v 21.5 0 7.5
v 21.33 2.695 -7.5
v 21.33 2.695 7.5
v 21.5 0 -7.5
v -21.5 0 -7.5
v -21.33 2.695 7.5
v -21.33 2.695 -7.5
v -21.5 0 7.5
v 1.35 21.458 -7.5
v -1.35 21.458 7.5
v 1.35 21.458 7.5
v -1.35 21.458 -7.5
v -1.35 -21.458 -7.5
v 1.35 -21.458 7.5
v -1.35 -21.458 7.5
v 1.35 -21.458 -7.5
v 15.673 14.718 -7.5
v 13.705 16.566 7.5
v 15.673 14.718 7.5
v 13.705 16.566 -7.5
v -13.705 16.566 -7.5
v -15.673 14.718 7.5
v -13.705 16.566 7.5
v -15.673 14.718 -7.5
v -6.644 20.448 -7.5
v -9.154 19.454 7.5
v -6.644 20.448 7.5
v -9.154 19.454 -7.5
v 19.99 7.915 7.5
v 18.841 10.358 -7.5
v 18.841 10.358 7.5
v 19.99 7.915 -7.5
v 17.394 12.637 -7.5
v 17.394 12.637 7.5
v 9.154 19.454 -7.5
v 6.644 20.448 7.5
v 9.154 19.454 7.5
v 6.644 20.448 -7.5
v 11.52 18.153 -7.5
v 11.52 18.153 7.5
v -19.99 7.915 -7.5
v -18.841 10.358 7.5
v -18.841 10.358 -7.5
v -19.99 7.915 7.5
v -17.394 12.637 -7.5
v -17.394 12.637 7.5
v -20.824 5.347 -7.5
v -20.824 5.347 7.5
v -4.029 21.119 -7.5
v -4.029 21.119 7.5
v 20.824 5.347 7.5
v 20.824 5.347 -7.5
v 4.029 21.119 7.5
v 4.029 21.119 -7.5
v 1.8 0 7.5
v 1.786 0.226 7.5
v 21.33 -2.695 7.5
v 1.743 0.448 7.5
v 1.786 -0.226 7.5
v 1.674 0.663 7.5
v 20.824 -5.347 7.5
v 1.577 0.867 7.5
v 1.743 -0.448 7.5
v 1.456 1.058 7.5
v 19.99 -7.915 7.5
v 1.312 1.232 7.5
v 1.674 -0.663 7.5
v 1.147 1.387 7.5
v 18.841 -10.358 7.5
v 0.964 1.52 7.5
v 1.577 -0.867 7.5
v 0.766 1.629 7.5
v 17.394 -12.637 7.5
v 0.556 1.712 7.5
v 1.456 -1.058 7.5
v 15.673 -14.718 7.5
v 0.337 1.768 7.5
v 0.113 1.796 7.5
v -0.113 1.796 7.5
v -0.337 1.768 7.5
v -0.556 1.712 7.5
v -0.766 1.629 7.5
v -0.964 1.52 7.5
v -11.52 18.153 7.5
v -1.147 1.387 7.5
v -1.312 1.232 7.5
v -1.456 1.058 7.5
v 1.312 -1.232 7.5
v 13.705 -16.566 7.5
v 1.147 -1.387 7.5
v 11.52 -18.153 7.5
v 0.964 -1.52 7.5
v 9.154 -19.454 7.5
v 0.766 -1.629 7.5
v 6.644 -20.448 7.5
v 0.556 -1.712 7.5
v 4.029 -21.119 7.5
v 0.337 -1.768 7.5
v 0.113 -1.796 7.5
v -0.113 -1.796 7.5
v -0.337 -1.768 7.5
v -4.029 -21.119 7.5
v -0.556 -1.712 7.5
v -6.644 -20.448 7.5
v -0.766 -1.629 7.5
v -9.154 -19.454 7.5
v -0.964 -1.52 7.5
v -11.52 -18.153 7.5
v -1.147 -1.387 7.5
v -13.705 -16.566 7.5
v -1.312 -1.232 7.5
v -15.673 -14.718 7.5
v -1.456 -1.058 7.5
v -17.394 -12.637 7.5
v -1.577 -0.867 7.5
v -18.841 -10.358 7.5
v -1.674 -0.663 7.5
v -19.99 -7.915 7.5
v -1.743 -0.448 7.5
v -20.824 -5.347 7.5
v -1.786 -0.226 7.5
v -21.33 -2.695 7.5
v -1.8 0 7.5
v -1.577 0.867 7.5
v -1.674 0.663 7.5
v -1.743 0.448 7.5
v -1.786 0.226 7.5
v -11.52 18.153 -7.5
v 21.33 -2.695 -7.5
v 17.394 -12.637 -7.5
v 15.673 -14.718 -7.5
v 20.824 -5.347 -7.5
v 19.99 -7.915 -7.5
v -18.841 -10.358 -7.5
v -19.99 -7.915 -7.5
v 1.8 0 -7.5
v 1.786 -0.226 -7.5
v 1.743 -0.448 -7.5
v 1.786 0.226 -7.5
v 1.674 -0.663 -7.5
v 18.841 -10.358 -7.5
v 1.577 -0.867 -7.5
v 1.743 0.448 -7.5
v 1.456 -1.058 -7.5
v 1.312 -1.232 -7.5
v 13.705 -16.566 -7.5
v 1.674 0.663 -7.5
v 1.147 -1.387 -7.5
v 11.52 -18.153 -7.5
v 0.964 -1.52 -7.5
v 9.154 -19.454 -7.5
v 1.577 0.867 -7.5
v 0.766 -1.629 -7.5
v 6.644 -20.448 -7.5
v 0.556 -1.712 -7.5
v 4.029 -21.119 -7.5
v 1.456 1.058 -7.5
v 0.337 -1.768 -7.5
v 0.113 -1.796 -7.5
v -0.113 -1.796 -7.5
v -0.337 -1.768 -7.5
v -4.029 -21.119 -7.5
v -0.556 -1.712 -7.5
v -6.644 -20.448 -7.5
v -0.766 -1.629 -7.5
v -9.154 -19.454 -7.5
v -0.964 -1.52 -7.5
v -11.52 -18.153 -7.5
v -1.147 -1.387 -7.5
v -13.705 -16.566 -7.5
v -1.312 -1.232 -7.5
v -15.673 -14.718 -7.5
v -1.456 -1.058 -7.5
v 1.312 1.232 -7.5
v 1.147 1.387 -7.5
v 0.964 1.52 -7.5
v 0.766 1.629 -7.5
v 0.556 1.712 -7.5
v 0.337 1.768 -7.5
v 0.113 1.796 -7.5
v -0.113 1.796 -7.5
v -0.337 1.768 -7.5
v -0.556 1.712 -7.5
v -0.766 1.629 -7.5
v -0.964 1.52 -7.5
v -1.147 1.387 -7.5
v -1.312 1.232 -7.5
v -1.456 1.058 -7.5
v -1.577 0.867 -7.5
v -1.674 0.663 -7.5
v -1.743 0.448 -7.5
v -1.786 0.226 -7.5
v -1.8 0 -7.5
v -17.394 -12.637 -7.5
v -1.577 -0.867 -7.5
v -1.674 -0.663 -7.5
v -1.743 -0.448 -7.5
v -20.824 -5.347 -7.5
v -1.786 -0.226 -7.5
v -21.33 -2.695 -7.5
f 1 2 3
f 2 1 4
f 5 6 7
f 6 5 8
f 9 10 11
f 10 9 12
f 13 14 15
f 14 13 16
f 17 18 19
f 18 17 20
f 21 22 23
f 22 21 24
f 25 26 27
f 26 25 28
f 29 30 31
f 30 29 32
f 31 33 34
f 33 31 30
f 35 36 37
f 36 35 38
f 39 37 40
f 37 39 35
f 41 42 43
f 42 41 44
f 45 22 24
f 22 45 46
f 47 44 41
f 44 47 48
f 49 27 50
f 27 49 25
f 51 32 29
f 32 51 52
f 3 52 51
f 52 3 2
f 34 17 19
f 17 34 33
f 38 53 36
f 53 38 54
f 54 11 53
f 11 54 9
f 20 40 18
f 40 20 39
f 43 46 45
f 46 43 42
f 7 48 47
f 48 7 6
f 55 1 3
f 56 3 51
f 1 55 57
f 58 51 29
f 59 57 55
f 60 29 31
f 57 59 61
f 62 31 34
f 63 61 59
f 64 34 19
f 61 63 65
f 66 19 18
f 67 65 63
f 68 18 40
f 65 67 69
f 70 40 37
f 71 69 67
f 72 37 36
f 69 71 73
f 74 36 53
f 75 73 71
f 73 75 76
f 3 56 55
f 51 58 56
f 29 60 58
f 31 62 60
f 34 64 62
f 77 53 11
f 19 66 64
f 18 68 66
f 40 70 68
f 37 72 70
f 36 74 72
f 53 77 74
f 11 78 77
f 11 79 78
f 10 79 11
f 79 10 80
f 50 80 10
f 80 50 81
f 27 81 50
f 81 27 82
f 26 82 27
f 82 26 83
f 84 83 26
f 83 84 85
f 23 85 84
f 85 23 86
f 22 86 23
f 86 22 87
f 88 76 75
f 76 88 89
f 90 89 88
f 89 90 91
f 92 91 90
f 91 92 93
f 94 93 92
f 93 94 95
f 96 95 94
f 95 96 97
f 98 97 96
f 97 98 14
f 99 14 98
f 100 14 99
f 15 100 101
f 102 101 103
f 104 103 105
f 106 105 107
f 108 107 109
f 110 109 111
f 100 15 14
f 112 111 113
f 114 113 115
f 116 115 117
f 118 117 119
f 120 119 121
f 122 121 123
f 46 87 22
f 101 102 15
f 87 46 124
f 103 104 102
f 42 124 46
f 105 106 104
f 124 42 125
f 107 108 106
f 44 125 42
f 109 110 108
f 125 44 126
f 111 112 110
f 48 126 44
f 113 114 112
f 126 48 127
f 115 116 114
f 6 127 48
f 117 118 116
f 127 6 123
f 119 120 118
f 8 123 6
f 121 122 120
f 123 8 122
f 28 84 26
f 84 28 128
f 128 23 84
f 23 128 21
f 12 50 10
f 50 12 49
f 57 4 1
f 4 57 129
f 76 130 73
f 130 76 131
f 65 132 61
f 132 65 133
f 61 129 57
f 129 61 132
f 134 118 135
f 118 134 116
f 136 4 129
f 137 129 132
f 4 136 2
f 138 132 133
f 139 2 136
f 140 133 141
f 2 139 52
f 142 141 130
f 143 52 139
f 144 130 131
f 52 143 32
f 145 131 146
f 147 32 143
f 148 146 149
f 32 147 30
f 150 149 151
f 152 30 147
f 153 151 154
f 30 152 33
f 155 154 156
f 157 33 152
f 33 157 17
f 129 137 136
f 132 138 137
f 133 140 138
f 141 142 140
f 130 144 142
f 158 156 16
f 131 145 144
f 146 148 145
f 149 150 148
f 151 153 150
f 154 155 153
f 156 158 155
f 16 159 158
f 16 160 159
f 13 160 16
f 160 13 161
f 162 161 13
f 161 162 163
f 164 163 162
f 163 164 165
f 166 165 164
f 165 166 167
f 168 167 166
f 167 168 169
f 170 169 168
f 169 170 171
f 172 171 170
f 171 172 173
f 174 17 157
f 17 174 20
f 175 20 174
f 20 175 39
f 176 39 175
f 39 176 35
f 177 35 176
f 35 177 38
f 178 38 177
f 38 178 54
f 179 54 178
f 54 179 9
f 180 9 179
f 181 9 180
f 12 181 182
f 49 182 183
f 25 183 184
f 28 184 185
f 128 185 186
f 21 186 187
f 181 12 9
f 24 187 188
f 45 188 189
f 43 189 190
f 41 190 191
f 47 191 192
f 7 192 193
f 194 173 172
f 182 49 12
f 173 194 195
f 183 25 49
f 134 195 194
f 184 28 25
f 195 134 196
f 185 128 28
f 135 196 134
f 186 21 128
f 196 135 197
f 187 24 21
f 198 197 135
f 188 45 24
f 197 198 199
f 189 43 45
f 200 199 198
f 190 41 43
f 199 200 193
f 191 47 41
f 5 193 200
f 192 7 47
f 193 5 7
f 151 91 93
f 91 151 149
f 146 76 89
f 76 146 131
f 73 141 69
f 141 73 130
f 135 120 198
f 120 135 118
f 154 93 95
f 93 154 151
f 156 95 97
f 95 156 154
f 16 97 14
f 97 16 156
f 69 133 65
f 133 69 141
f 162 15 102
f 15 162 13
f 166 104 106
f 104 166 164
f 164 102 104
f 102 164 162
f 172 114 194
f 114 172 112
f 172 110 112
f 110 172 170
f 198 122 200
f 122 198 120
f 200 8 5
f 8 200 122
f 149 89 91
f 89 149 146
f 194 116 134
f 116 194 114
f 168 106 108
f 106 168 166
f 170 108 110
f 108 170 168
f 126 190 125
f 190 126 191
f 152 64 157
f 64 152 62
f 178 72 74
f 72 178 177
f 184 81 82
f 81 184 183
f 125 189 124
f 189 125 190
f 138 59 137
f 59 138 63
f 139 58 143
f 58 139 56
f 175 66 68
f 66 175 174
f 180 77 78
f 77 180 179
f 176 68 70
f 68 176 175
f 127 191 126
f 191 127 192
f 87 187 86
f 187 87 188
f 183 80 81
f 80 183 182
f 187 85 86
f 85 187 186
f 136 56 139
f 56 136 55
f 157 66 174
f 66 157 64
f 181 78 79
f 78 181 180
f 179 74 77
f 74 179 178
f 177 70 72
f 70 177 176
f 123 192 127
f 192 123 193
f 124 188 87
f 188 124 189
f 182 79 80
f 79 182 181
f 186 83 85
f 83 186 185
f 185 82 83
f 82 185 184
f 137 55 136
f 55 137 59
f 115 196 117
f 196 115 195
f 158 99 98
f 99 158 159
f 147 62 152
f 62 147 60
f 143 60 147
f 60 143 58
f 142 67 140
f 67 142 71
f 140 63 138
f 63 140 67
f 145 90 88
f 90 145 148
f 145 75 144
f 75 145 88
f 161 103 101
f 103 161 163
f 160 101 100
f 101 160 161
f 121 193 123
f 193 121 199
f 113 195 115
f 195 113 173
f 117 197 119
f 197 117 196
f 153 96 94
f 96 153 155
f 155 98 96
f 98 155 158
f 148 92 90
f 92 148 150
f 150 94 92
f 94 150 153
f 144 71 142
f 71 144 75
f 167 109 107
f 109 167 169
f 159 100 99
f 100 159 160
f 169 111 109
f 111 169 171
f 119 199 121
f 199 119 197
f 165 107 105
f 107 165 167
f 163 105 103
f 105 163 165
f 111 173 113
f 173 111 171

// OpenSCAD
$fn = 50;


difference() {
	union() {
		translate(v = [0, 0, -7.5000000000]) {
			cylinder(h = 15, r = 21.5000000000);
		}
	}
	union() {
		translate(v = [0, 0, -100.0000000000]) {
			cylinder(h = 200, r = 1.8000000000);
		}
	}
}
